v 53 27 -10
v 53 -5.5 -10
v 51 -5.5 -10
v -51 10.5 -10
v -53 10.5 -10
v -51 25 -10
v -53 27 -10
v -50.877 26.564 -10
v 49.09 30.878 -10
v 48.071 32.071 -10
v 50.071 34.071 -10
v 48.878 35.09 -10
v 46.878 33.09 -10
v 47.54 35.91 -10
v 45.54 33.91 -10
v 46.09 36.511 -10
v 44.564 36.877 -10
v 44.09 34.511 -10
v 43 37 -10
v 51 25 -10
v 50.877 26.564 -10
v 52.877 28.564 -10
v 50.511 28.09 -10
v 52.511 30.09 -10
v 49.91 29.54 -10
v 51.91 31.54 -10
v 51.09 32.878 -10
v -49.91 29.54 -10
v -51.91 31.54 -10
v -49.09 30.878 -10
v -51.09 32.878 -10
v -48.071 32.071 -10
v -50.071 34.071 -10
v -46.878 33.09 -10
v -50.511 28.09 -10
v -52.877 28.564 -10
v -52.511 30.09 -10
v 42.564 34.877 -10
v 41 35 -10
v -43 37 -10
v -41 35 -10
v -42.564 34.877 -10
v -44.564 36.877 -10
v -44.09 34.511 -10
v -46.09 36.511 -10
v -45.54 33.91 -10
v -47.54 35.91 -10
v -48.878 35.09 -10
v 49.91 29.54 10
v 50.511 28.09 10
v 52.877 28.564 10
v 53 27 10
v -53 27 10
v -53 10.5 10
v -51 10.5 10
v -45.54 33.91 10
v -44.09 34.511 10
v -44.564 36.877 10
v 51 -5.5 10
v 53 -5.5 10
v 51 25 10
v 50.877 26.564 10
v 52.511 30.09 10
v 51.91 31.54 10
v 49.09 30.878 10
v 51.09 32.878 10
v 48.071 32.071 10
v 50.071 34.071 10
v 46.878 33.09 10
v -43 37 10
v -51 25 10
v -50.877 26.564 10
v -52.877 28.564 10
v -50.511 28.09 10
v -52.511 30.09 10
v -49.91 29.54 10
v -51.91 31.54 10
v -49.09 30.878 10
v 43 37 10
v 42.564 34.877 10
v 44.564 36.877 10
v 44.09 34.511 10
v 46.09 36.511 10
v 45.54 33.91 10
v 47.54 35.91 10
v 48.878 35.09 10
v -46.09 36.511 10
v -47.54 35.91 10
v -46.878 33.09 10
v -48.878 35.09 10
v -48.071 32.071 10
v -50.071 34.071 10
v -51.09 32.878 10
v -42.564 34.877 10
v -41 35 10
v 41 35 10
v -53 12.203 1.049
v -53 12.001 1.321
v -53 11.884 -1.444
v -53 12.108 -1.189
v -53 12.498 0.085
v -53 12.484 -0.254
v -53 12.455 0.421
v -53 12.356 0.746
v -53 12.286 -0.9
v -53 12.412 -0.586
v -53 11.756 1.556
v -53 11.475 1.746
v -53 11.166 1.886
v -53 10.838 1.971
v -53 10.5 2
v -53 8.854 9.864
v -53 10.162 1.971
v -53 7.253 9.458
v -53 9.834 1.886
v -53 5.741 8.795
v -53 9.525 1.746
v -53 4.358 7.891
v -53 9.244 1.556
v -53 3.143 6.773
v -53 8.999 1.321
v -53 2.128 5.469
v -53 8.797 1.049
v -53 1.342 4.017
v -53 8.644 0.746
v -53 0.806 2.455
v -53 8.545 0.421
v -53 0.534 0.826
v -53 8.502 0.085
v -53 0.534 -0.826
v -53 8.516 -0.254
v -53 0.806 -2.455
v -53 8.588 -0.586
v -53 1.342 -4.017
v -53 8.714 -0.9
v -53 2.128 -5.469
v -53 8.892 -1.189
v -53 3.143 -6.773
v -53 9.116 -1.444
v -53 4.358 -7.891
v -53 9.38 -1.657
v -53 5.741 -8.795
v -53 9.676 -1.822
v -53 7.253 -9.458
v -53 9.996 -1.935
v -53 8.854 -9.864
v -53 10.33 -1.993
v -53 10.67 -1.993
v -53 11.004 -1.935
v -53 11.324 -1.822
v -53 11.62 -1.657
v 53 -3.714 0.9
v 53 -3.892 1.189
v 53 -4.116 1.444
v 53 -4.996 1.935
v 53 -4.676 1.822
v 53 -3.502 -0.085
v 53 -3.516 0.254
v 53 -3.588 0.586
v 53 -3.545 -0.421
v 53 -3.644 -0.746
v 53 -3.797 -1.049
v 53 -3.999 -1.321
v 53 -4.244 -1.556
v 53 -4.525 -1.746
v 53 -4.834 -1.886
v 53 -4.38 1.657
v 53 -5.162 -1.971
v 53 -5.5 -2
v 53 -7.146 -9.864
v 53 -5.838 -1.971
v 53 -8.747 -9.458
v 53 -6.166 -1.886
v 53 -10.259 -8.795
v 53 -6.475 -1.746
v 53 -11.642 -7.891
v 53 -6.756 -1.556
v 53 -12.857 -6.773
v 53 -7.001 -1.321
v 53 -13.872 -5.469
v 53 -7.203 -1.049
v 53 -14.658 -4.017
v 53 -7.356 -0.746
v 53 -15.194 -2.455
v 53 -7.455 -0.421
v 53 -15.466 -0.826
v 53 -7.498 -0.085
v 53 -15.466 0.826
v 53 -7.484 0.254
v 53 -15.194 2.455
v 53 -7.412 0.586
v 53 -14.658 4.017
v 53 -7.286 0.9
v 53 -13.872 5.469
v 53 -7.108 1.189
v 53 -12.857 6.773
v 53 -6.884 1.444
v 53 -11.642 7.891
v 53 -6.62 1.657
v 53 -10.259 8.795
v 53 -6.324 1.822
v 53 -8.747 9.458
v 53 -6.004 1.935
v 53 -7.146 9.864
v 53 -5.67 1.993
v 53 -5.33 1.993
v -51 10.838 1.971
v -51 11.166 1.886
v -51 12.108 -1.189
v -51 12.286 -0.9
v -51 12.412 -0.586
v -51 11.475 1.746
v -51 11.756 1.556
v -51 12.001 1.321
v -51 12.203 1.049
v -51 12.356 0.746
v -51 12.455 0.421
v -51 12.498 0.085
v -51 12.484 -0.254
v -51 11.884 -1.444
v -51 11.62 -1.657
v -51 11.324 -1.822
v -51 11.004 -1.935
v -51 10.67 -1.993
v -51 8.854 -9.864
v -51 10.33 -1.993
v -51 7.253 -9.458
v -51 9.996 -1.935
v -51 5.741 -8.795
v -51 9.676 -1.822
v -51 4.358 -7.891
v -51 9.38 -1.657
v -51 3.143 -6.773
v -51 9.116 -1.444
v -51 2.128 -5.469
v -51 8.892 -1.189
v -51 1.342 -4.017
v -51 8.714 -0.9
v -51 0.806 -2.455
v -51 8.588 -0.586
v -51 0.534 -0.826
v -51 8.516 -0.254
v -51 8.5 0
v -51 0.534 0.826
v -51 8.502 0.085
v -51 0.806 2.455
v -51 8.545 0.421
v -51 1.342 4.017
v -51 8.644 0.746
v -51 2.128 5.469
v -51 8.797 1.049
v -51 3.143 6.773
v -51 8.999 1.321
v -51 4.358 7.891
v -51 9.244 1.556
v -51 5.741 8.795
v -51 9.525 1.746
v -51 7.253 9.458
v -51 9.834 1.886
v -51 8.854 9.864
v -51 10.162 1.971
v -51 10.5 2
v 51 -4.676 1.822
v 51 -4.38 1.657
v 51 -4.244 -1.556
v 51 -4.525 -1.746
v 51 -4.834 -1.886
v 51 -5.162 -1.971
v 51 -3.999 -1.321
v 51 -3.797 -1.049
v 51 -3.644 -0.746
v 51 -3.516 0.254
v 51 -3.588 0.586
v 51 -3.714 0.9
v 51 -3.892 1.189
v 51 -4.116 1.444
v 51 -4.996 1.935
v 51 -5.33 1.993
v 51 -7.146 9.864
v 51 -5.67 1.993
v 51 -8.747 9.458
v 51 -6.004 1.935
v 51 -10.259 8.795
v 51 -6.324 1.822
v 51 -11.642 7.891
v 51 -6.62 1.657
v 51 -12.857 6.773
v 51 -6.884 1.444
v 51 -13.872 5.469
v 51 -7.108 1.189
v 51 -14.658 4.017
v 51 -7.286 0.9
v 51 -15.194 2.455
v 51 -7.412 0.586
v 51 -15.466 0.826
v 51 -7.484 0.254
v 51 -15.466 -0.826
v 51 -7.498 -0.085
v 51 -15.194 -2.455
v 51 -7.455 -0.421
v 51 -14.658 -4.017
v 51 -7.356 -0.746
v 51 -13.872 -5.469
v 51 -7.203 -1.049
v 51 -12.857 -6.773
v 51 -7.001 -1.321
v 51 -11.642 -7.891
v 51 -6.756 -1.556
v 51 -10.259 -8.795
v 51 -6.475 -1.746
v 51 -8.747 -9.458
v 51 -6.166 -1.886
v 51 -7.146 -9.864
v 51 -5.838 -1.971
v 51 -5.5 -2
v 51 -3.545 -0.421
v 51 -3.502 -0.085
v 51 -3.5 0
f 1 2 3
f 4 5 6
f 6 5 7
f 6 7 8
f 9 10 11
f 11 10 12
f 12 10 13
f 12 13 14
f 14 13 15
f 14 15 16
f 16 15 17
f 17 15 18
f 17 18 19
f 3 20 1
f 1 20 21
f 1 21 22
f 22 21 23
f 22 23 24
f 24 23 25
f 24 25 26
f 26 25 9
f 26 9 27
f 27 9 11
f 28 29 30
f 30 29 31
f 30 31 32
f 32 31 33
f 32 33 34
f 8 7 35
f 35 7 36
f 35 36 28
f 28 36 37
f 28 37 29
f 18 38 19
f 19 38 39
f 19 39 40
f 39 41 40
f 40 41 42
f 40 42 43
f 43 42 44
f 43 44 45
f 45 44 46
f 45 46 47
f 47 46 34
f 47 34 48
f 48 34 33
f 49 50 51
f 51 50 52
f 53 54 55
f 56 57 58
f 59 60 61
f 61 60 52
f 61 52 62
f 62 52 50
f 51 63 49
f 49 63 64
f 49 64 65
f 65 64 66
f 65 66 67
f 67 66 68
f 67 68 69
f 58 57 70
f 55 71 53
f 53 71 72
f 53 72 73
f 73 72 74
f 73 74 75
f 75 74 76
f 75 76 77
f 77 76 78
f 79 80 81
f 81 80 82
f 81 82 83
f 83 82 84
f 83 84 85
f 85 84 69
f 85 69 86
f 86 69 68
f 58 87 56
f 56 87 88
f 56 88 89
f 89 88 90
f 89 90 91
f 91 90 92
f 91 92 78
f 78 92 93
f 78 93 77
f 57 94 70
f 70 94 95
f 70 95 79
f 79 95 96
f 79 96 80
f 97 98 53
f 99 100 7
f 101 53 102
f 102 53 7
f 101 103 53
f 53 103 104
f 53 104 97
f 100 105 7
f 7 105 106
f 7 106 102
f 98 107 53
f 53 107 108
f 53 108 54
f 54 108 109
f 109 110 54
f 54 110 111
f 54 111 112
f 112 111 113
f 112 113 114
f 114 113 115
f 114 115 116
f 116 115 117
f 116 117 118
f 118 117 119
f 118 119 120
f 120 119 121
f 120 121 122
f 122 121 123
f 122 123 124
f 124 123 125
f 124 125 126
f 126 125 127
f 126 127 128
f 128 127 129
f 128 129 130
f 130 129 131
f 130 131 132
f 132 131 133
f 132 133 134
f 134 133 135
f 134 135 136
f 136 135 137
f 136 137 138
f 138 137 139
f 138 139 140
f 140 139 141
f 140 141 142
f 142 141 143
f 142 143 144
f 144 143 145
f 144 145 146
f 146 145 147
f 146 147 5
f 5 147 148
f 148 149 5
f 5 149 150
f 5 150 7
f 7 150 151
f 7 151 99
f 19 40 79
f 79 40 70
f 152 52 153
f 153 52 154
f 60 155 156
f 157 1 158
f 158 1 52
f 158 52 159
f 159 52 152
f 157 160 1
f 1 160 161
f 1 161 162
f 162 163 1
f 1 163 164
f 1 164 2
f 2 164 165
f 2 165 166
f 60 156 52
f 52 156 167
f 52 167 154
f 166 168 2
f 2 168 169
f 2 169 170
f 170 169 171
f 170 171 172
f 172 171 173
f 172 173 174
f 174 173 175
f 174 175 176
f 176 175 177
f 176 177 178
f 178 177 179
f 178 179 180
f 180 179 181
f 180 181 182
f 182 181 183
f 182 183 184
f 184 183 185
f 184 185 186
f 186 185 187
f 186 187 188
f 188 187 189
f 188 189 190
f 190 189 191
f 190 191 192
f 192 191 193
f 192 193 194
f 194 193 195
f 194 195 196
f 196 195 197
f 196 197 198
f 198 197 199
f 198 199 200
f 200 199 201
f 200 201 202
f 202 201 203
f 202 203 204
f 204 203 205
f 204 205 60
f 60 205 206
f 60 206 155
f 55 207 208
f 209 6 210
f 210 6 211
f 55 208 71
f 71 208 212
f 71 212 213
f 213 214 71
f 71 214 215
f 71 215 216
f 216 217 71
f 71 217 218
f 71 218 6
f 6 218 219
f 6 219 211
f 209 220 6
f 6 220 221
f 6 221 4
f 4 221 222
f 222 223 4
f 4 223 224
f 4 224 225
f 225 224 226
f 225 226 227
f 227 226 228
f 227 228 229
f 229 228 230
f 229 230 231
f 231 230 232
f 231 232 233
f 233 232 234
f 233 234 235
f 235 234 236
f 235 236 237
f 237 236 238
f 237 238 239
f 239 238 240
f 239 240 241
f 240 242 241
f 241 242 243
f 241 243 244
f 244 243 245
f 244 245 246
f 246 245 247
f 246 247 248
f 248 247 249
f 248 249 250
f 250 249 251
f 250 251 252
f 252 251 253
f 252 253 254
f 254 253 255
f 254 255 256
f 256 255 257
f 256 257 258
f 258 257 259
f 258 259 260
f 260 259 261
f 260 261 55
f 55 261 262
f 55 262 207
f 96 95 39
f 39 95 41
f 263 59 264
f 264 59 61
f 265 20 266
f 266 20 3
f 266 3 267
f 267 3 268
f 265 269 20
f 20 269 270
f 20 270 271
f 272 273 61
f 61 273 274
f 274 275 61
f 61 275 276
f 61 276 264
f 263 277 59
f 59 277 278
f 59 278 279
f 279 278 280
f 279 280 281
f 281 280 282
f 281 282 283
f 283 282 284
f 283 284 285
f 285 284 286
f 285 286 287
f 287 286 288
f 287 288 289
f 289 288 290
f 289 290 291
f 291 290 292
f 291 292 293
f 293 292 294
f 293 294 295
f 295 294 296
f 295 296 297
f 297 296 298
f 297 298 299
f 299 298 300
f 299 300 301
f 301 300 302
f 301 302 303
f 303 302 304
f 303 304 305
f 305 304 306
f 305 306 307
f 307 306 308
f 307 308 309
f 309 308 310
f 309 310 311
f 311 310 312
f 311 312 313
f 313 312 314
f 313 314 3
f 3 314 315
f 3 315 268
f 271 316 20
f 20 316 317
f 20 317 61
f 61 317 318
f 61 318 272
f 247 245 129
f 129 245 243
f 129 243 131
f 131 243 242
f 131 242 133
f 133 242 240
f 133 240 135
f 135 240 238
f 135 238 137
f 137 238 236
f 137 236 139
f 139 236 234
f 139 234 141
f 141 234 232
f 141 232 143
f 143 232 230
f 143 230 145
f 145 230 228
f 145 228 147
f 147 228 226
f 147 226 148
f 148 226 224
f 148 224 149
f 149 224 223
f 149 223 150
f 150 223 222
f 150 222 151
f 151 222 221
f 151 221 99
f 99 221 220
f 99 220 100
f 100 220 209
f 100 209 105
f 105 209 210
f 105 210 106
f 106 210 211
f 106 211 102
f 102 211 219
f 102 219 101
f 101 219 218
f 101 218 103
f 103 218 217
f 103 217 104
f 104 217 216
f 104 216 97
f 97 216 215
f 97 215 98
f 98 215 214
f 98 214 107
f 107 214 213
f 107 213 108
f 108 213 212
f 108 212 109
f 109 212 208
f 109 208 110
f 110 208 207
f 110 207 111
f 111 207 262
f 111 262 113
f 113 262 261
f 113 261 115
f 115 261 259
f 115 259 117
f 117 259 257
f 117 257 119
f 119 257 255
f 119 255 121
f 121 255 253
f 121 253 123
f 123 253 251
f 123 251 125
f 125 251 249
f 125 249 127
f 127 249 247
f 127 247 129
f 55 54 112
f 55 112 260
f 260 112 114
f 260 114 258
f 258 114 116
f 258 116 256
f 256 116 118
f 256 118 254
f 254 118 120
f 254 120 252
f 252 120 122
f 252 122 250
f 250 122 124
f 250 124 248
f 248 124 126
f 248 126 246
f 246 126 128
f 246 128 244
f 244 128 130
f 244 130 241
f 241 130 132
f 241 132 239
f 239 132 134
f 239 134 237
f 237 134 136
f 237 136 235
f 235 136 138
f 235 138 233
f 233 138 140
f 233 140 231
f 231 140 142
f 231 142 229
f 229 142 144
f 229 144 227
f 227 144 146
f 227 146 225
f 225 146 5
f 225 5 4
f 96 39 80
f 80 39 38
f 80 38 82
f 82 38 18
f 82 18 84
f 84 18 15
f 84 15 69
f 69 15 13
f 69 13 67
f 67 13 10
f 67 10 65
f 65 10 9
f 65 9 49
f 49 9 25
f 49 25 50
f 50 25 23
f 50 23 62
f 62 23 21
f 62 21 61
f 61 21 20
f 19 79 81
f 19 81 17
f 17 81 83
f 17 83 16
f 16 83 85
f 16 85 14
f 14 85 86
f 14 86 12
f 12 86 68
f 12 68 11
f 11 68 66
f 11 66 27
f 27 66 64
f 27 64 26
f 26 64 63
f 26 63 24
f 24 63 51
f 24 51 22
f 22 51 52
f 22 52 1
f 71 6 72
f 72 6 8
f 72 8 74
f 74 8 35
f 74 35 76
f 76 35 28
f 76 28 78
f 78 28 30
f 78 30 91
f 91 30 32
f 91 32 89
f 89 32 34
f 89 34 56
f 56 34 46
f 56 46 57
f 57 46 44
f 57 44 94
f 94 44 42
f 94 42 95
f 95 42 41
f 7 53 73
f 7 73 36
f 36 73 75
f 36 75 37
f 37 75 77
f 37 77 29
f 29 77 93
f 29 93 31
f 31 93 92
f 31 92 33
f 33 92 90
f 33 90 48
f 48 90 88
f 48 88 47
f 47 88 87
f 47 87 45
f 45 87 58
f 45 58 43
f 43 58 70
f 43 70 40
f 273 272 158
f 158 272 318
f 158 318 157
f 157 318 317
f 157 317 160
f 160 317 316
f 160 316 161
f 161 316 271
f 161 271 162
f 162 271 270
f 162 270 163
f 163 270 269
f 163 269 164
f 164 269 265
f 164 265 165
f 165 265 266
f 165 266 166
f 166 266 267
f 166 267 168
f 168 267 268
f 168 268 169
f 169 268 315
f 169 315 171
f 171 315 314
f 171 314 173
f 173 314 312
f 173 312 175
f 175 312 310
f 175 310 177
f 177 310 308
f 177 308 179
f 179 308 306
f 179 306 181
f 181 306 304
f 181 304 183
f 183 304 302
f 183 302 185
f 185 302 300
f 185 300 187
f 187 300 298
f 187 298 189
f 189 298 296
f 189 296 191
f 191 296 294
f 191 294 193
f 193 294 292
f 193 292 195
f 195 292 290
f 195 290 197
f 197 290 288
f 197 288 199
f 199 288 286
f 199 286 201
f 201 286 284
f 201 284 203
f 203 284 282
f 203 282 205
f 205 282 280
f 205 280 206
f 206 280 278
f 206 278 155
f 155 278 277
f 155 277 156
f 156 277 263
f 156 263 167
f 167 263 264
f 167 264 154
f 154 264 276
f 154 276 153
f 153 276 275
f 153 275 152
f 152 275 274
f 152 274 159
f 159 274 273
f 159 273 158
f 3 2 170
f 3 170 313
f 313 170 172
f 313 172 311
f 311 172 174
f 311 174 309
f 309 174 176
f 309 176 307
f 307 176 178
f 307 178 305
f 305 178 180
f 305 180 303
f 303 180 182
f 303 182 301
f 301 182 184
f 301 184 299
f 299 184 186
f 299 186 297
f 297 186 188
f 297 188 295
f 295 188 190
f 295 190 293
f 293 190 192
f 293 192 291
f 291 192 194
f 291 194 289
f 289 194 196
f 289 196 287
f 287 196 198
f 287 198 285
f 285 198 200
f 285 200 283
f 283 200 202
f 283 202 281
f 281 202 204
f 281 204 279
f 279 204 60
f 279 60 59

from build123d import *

# Parameters (mm, degrees)
SUPERFICIE_EXTRUIR1_1_BACK  = 10
SUPERFICIE_EXTRUIR1_1_DEPTH = 20
DAR_ESPESOR1_T1             = 2
CROQUIS2_R                  = 2
CORTAR_EXTRUIR1_DEPTH       = 2
REDONDEO1_R                 = 10
CROQUIS3_R                  = 2
CORTAR_EXTRUIR2_DEPTH       = 2


with BuildPart() as body_1:
    # Superficie-Extruir1: a surface, the sketch's curves swept straight by 20 mm
    with BuildLine(Plane.XY.offset(-SUPERFICIE_EXTRUIR1_1_BACK), mode=Mode.PRIVATE) as superficie_extruir1_1_path:
        Line((-51, 0), (-51, 35))
        Line((-51, 35), (51, 35))
        Line((51, 35), (51, 0))
        Line((51, 0), (51, -16))
    superficie_extruir1_1 = Shell.extrude(superficie_extruir1_1_path.wire(), (0 * SUPERFICIE_EXTRUIR1_1_DEPTH, 0 * SUPERFICIE_EXTRUIR1_1_DEPTH, 1 * SUPERFICIE_EXTRUIR1_1_DEPTH))
    add(Solid.thicken(superficie_extruir1_1, DAR_ESPESOR1_T1))

    # Croquis2 → Cortar-Extruir1 (cut)
    with BuildSketch(Plane.ZY.offset(53)):
        with Locations((0, 10.5)):
            Circle(CROQUIS2_R)
        with BuildLine():
            Line((-10, 10.5), (-10, 0))
            Line((-10, 0), (10, 0))
            Line((10, 0), (10, 10.5))
            ThreePointArc((10, 10.5), (0, 0.5), (-10, 10.5))
        make_face()
    extrude(amount=-CORTAR_EXTRUIR1_DEPTH, mode=Mode.SUBTRACT)

    # Redondeo1
    redondeo1_edges = [body_1.edges().sort_by_distance(p)[0] for p in [
        (-51, 35, 0),
        (51, 35, 0),
        (53, 37, 0),
        (-53, 37, 0),
    ]]
    fillet(redondeo1_edges, radius=REDONDEO1_R)

    # Croquis3 → Cortar-Extruir2 (cut)
    with BuildSketch(Plane(origin=(53, 0, 0), x_dir=(0, 0, -1), z_dir=(1, 0, 0))):
        with Locations((0, -5.5)):
            Circle(CROQUIS3_R)
        with BuildLine():
            Line((-10, -5.5), (-10, -16))
            Line((-10, -16), (10, -16))
            Line((10, -16), (10, -5.5))
            ThreePointArc((10, -5.5), (0, -15.5), (-10, -5.5))
        make_face()
    extrude(amount=-CORTAR_EXTRUIR2_DEPTH, mode=Mode.SUBTRACT)


solid = body_1.part
